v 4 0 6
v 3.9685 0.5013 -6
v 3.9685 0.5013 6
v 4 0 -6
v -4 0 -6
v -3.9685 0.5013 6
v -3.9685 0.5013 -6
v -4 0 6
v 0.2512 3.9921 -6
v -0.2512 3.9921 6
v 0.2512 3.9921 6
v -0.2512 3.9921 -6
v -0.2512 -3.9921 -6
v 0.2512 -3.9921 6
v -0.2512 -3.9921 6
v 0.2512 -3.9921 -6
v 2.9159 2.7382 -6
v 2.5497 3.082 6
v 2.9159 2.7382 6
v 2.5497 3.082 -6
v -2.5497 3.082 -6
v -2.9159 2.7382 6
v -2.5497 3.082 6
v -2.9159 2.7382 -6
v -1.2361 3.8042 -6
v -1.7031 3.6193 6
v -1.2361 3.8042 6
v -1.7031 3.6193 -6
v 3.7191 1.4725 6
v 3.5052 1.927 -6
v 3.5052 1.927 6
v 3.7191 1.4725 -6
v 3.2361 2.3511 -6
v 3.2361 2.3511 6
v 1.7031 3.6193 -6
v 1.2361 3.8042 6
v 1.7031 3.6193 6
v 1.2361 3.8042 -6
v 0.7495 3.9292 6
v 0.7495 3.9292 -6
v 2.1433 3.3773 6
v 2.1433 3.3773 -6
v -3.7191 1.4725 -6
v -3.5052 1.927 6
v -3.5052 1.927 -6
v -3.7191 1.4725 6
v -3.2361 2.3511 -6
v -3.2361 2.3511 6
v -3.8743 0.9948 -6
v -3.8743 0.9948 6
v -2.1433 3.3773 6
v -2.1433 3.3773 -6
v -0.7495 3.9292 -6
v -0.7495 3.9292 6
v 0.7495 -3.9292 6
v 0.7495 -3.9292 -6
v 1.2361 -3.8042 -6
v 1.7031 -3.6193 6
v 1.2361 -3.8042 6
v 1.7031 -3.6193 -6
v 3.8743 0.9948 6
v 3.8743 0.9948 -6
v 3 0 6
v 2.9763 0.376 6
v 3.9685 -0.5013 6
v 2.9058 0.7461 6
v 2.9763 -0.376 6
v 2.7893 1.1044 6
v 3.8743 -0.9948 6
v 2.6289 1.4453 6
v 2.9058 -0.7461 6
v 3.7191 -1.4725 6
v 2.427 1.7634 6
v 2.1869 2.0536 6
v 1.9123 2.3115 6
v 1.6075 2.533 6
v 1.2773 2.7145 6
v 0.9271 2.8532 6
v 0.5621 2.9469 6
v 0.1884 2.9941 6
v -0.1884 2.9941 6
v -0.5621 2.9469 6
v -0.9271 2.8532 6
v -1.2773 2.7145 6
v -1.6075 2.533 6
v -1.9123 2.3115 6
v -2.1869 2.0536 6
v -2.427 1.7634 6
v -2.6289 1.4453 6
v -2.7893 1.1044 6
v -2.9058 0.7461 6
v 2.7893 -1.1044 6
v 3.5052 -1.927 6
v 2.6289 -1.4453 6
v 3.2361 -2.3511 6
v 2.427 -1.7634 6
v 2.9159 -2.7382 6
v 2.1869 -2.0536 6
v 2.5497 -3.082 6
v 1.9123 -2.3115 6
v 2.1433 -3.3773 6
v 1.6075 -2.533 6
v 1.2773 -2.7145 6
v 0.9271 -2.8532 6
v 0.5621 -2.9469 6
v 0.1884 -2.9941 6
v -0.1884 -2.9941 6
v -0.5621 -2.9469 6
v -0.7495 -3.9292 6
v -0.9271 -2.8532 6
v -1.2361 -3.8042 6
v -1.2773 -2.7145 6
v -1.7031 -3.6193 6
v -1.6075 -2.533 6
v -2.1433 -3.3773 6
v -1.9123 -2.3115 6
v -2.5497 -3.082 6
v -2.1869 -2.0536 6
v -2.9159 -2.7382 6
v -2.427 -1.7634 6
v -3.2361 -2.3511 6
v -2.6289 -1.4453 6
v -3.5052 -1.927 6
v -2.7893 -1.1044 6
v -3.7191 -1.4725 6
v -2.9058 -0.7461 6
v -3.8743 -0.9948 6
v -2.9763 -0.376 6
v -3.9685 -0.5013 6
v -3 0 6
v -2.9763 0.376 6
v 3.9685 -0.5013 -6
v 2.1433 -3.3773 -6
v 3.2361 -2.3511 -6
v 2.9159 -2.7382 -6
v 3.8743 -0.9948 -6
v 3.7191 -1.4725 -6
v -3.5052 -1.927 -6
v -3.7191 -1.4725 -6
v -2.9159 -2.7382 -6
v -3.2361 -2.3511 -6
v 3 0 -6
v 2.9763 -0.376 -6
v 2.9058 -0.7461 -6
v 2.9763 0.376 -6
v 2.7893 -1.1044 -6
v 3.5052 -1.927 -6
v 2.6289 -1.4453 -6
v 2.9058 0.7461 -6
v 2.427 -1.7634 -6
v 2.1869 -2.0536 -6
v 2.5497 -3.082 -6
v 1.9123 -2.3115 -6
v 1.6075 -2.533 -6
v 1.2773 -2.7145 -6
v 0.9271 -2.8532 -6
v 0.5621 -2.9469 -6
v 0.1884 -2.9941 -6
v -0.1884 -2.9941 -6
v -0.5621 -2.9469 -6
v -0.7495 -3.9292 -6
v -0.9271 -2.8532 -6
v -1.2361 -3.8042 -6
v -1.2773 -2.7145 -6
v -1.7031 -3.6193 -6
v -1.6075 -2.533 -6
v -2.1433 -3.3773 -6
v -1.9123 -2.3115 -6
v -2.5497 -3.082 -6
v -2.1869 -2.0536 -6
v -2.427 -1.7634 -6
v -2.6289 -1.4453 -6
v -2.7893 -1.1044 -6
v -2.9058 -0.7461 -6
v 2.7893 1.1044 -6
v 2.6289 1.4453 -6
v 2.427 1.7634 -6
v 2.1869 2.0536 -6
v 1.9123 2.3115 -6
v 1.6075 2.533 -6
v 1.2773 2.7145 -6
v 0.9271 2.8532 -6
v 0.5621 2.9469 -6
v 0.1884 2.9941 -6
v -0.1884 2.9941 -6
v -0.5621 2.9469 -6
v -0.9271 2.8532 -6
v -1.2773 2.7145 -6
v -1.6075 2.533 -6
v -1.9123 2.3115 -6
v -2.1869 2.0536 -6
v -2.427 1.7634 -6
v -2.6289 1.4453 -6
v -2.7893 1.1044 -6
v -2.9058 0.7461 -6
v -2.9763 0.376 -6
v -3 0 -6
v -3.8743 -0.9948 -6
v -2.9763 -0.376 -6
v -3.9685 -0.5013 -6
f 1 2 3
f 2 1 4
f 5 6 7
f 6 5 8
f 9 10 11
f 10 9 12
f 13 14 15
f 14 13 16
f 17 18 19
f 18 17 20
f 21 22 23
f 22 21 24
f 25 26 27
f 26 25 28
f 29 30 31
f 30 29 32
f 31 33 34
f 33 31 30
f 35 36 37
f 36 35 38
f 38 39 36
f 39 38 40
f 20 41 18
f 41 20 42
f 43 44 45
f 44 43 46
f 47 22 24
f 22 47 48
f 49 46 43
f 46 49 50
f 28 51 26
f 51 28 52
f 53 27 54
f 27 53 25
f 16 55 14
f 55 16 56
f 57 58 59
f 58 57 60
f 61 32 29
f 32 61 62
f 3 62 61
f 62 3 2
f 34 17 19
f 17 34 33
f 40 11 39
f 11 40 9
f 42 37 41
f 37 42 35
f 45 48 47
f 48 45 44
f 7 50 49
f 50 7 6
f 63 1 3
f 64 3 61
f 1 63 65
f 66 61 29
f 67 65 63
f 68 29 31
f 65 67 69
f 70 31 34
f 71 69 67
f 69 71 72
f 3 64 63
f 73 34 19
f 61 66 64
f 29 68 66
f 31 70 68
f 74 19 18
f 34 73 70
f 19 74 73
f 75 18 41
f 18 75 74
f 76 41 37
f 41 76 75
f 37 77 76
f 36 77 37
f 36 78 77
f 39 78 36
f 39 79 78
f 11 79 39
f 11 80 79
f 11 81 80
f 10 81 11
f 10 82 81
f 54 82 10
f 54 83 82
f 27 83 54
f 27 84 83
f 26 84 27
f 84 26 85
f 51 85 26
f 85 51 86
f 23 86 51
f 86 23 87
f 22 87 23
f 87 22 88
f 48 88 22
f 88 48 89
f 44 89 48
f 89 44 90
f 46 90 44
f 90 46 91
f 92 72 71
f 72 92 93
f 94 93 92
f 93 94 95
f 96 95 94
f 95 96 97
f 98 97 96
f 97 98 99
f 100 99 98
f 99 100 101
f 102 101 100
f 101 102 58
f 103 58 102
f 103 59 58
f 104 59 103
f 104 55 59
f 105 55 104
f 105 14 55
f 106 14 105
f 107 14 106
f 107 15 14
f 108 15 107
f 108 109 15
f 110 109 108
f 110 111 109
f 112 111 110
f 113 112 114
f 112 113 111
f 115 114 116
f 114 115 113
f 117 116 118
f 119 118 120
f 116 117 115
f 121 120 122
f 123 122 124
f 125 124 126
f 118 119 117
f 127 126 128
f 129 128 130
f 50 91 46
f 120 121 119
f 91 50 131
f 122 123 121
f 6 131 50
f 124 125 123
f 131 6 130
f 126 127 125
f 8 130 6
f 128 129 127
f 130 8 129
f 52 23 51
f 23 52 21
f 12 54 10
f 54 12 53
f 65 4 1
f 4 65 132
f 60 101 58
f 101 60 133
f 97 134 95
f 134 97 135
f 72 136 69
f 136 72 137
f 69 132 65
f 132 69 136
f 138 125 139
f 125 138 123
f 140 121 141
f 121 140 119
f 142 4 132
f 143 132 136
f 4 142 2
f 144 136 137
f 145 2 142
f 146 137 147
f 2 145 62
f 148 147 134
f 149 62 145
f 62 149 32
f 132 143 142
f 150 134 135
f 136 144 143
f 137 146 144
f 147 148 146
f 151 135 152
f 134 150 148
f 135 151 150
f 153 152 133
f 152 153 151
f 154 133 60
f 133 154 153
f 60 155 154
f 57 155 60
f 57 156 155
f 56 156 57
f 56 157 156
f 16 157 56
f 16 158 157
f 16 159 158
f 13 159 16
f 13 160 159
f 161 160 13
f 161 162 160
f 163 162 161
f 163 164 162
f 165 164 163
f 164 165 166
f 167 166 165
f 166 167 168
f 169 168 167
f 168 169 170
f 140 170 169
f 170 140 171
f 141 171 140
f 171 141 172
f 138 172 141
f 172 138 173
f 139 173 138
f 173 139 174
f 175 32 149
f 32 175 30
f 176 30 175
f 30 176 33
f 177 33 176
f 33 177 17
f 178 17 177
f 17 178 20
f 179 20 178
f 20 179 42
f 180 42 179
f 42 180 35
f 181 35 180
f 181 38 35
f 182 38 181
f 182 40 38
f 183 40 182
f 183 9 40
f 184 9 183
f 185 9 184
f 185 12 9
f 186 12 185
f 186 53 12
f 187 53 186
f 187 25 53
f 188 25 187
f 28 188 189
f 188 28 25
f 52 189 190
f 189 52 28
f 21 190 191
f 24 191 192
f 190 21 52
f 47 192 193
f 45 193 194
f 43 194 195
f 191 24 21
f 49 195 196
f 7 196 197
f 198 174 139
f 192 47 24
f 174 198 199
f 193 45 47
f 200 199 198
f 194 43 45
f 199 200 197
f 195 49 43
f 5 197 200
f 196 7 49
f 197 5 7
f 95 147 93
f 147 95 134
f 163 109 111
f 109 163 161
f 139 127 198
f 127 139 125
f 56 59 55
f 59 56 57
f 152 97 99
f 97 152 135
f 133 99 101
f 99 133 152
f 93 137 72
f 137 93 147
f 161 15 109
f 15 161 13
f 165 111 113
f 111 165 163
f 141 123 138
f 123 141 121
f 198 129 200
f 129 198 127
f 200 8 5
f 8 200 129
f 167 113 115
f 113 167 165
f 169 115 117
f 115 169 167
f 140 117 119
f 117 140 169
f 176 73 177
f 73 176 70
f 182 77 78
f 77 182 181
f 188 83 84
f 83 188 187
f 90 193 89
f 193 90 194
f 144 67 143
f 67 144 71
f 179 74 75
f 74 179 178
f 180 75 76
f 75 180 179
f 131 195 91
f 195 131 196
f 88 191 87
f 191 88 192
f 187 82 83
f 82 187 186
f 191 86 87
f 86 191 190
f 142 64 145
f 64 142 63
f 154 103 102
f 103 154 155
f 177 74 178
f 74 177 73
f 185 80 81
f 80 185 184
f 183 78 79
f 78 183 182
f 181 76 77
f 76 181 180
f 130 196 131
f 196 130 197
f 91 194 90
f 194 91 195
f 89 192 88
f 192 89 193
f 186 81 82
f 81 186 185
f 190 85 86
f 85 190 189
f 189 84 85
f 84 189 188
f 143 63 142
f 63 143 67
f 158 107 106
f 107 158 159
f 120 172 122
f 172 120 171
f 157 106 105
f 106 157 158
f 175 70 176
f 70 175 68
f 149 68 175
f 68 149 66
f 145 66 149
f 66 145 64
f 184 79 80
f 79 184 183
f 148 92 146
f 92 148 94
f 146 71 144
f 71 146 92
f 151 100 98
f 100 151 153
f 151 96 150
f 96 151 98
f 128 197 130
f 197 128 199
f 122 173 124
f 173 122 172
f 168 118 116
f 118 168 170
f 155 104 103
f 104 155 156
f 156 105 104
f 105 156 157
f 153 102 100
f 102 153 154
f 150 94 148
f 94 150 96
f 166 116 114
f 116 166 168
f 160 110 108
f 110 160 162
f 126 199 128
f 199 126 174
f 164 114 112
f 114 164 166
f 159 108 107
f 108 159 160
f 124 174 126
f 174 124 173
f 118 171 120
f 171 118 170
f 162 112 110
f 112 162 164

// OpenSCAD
$fn = 50;


difference() {
	union() {
		translate(v = [0, 0, -6.0000000000]) {
			cylinder(h = 12, r = 4.0000000000);
		}
	}
	union() {
		translate(v = [0, 0, -100.0000000000]) {
			cylinder(h = 200, r = 3);
		}
	}
}
